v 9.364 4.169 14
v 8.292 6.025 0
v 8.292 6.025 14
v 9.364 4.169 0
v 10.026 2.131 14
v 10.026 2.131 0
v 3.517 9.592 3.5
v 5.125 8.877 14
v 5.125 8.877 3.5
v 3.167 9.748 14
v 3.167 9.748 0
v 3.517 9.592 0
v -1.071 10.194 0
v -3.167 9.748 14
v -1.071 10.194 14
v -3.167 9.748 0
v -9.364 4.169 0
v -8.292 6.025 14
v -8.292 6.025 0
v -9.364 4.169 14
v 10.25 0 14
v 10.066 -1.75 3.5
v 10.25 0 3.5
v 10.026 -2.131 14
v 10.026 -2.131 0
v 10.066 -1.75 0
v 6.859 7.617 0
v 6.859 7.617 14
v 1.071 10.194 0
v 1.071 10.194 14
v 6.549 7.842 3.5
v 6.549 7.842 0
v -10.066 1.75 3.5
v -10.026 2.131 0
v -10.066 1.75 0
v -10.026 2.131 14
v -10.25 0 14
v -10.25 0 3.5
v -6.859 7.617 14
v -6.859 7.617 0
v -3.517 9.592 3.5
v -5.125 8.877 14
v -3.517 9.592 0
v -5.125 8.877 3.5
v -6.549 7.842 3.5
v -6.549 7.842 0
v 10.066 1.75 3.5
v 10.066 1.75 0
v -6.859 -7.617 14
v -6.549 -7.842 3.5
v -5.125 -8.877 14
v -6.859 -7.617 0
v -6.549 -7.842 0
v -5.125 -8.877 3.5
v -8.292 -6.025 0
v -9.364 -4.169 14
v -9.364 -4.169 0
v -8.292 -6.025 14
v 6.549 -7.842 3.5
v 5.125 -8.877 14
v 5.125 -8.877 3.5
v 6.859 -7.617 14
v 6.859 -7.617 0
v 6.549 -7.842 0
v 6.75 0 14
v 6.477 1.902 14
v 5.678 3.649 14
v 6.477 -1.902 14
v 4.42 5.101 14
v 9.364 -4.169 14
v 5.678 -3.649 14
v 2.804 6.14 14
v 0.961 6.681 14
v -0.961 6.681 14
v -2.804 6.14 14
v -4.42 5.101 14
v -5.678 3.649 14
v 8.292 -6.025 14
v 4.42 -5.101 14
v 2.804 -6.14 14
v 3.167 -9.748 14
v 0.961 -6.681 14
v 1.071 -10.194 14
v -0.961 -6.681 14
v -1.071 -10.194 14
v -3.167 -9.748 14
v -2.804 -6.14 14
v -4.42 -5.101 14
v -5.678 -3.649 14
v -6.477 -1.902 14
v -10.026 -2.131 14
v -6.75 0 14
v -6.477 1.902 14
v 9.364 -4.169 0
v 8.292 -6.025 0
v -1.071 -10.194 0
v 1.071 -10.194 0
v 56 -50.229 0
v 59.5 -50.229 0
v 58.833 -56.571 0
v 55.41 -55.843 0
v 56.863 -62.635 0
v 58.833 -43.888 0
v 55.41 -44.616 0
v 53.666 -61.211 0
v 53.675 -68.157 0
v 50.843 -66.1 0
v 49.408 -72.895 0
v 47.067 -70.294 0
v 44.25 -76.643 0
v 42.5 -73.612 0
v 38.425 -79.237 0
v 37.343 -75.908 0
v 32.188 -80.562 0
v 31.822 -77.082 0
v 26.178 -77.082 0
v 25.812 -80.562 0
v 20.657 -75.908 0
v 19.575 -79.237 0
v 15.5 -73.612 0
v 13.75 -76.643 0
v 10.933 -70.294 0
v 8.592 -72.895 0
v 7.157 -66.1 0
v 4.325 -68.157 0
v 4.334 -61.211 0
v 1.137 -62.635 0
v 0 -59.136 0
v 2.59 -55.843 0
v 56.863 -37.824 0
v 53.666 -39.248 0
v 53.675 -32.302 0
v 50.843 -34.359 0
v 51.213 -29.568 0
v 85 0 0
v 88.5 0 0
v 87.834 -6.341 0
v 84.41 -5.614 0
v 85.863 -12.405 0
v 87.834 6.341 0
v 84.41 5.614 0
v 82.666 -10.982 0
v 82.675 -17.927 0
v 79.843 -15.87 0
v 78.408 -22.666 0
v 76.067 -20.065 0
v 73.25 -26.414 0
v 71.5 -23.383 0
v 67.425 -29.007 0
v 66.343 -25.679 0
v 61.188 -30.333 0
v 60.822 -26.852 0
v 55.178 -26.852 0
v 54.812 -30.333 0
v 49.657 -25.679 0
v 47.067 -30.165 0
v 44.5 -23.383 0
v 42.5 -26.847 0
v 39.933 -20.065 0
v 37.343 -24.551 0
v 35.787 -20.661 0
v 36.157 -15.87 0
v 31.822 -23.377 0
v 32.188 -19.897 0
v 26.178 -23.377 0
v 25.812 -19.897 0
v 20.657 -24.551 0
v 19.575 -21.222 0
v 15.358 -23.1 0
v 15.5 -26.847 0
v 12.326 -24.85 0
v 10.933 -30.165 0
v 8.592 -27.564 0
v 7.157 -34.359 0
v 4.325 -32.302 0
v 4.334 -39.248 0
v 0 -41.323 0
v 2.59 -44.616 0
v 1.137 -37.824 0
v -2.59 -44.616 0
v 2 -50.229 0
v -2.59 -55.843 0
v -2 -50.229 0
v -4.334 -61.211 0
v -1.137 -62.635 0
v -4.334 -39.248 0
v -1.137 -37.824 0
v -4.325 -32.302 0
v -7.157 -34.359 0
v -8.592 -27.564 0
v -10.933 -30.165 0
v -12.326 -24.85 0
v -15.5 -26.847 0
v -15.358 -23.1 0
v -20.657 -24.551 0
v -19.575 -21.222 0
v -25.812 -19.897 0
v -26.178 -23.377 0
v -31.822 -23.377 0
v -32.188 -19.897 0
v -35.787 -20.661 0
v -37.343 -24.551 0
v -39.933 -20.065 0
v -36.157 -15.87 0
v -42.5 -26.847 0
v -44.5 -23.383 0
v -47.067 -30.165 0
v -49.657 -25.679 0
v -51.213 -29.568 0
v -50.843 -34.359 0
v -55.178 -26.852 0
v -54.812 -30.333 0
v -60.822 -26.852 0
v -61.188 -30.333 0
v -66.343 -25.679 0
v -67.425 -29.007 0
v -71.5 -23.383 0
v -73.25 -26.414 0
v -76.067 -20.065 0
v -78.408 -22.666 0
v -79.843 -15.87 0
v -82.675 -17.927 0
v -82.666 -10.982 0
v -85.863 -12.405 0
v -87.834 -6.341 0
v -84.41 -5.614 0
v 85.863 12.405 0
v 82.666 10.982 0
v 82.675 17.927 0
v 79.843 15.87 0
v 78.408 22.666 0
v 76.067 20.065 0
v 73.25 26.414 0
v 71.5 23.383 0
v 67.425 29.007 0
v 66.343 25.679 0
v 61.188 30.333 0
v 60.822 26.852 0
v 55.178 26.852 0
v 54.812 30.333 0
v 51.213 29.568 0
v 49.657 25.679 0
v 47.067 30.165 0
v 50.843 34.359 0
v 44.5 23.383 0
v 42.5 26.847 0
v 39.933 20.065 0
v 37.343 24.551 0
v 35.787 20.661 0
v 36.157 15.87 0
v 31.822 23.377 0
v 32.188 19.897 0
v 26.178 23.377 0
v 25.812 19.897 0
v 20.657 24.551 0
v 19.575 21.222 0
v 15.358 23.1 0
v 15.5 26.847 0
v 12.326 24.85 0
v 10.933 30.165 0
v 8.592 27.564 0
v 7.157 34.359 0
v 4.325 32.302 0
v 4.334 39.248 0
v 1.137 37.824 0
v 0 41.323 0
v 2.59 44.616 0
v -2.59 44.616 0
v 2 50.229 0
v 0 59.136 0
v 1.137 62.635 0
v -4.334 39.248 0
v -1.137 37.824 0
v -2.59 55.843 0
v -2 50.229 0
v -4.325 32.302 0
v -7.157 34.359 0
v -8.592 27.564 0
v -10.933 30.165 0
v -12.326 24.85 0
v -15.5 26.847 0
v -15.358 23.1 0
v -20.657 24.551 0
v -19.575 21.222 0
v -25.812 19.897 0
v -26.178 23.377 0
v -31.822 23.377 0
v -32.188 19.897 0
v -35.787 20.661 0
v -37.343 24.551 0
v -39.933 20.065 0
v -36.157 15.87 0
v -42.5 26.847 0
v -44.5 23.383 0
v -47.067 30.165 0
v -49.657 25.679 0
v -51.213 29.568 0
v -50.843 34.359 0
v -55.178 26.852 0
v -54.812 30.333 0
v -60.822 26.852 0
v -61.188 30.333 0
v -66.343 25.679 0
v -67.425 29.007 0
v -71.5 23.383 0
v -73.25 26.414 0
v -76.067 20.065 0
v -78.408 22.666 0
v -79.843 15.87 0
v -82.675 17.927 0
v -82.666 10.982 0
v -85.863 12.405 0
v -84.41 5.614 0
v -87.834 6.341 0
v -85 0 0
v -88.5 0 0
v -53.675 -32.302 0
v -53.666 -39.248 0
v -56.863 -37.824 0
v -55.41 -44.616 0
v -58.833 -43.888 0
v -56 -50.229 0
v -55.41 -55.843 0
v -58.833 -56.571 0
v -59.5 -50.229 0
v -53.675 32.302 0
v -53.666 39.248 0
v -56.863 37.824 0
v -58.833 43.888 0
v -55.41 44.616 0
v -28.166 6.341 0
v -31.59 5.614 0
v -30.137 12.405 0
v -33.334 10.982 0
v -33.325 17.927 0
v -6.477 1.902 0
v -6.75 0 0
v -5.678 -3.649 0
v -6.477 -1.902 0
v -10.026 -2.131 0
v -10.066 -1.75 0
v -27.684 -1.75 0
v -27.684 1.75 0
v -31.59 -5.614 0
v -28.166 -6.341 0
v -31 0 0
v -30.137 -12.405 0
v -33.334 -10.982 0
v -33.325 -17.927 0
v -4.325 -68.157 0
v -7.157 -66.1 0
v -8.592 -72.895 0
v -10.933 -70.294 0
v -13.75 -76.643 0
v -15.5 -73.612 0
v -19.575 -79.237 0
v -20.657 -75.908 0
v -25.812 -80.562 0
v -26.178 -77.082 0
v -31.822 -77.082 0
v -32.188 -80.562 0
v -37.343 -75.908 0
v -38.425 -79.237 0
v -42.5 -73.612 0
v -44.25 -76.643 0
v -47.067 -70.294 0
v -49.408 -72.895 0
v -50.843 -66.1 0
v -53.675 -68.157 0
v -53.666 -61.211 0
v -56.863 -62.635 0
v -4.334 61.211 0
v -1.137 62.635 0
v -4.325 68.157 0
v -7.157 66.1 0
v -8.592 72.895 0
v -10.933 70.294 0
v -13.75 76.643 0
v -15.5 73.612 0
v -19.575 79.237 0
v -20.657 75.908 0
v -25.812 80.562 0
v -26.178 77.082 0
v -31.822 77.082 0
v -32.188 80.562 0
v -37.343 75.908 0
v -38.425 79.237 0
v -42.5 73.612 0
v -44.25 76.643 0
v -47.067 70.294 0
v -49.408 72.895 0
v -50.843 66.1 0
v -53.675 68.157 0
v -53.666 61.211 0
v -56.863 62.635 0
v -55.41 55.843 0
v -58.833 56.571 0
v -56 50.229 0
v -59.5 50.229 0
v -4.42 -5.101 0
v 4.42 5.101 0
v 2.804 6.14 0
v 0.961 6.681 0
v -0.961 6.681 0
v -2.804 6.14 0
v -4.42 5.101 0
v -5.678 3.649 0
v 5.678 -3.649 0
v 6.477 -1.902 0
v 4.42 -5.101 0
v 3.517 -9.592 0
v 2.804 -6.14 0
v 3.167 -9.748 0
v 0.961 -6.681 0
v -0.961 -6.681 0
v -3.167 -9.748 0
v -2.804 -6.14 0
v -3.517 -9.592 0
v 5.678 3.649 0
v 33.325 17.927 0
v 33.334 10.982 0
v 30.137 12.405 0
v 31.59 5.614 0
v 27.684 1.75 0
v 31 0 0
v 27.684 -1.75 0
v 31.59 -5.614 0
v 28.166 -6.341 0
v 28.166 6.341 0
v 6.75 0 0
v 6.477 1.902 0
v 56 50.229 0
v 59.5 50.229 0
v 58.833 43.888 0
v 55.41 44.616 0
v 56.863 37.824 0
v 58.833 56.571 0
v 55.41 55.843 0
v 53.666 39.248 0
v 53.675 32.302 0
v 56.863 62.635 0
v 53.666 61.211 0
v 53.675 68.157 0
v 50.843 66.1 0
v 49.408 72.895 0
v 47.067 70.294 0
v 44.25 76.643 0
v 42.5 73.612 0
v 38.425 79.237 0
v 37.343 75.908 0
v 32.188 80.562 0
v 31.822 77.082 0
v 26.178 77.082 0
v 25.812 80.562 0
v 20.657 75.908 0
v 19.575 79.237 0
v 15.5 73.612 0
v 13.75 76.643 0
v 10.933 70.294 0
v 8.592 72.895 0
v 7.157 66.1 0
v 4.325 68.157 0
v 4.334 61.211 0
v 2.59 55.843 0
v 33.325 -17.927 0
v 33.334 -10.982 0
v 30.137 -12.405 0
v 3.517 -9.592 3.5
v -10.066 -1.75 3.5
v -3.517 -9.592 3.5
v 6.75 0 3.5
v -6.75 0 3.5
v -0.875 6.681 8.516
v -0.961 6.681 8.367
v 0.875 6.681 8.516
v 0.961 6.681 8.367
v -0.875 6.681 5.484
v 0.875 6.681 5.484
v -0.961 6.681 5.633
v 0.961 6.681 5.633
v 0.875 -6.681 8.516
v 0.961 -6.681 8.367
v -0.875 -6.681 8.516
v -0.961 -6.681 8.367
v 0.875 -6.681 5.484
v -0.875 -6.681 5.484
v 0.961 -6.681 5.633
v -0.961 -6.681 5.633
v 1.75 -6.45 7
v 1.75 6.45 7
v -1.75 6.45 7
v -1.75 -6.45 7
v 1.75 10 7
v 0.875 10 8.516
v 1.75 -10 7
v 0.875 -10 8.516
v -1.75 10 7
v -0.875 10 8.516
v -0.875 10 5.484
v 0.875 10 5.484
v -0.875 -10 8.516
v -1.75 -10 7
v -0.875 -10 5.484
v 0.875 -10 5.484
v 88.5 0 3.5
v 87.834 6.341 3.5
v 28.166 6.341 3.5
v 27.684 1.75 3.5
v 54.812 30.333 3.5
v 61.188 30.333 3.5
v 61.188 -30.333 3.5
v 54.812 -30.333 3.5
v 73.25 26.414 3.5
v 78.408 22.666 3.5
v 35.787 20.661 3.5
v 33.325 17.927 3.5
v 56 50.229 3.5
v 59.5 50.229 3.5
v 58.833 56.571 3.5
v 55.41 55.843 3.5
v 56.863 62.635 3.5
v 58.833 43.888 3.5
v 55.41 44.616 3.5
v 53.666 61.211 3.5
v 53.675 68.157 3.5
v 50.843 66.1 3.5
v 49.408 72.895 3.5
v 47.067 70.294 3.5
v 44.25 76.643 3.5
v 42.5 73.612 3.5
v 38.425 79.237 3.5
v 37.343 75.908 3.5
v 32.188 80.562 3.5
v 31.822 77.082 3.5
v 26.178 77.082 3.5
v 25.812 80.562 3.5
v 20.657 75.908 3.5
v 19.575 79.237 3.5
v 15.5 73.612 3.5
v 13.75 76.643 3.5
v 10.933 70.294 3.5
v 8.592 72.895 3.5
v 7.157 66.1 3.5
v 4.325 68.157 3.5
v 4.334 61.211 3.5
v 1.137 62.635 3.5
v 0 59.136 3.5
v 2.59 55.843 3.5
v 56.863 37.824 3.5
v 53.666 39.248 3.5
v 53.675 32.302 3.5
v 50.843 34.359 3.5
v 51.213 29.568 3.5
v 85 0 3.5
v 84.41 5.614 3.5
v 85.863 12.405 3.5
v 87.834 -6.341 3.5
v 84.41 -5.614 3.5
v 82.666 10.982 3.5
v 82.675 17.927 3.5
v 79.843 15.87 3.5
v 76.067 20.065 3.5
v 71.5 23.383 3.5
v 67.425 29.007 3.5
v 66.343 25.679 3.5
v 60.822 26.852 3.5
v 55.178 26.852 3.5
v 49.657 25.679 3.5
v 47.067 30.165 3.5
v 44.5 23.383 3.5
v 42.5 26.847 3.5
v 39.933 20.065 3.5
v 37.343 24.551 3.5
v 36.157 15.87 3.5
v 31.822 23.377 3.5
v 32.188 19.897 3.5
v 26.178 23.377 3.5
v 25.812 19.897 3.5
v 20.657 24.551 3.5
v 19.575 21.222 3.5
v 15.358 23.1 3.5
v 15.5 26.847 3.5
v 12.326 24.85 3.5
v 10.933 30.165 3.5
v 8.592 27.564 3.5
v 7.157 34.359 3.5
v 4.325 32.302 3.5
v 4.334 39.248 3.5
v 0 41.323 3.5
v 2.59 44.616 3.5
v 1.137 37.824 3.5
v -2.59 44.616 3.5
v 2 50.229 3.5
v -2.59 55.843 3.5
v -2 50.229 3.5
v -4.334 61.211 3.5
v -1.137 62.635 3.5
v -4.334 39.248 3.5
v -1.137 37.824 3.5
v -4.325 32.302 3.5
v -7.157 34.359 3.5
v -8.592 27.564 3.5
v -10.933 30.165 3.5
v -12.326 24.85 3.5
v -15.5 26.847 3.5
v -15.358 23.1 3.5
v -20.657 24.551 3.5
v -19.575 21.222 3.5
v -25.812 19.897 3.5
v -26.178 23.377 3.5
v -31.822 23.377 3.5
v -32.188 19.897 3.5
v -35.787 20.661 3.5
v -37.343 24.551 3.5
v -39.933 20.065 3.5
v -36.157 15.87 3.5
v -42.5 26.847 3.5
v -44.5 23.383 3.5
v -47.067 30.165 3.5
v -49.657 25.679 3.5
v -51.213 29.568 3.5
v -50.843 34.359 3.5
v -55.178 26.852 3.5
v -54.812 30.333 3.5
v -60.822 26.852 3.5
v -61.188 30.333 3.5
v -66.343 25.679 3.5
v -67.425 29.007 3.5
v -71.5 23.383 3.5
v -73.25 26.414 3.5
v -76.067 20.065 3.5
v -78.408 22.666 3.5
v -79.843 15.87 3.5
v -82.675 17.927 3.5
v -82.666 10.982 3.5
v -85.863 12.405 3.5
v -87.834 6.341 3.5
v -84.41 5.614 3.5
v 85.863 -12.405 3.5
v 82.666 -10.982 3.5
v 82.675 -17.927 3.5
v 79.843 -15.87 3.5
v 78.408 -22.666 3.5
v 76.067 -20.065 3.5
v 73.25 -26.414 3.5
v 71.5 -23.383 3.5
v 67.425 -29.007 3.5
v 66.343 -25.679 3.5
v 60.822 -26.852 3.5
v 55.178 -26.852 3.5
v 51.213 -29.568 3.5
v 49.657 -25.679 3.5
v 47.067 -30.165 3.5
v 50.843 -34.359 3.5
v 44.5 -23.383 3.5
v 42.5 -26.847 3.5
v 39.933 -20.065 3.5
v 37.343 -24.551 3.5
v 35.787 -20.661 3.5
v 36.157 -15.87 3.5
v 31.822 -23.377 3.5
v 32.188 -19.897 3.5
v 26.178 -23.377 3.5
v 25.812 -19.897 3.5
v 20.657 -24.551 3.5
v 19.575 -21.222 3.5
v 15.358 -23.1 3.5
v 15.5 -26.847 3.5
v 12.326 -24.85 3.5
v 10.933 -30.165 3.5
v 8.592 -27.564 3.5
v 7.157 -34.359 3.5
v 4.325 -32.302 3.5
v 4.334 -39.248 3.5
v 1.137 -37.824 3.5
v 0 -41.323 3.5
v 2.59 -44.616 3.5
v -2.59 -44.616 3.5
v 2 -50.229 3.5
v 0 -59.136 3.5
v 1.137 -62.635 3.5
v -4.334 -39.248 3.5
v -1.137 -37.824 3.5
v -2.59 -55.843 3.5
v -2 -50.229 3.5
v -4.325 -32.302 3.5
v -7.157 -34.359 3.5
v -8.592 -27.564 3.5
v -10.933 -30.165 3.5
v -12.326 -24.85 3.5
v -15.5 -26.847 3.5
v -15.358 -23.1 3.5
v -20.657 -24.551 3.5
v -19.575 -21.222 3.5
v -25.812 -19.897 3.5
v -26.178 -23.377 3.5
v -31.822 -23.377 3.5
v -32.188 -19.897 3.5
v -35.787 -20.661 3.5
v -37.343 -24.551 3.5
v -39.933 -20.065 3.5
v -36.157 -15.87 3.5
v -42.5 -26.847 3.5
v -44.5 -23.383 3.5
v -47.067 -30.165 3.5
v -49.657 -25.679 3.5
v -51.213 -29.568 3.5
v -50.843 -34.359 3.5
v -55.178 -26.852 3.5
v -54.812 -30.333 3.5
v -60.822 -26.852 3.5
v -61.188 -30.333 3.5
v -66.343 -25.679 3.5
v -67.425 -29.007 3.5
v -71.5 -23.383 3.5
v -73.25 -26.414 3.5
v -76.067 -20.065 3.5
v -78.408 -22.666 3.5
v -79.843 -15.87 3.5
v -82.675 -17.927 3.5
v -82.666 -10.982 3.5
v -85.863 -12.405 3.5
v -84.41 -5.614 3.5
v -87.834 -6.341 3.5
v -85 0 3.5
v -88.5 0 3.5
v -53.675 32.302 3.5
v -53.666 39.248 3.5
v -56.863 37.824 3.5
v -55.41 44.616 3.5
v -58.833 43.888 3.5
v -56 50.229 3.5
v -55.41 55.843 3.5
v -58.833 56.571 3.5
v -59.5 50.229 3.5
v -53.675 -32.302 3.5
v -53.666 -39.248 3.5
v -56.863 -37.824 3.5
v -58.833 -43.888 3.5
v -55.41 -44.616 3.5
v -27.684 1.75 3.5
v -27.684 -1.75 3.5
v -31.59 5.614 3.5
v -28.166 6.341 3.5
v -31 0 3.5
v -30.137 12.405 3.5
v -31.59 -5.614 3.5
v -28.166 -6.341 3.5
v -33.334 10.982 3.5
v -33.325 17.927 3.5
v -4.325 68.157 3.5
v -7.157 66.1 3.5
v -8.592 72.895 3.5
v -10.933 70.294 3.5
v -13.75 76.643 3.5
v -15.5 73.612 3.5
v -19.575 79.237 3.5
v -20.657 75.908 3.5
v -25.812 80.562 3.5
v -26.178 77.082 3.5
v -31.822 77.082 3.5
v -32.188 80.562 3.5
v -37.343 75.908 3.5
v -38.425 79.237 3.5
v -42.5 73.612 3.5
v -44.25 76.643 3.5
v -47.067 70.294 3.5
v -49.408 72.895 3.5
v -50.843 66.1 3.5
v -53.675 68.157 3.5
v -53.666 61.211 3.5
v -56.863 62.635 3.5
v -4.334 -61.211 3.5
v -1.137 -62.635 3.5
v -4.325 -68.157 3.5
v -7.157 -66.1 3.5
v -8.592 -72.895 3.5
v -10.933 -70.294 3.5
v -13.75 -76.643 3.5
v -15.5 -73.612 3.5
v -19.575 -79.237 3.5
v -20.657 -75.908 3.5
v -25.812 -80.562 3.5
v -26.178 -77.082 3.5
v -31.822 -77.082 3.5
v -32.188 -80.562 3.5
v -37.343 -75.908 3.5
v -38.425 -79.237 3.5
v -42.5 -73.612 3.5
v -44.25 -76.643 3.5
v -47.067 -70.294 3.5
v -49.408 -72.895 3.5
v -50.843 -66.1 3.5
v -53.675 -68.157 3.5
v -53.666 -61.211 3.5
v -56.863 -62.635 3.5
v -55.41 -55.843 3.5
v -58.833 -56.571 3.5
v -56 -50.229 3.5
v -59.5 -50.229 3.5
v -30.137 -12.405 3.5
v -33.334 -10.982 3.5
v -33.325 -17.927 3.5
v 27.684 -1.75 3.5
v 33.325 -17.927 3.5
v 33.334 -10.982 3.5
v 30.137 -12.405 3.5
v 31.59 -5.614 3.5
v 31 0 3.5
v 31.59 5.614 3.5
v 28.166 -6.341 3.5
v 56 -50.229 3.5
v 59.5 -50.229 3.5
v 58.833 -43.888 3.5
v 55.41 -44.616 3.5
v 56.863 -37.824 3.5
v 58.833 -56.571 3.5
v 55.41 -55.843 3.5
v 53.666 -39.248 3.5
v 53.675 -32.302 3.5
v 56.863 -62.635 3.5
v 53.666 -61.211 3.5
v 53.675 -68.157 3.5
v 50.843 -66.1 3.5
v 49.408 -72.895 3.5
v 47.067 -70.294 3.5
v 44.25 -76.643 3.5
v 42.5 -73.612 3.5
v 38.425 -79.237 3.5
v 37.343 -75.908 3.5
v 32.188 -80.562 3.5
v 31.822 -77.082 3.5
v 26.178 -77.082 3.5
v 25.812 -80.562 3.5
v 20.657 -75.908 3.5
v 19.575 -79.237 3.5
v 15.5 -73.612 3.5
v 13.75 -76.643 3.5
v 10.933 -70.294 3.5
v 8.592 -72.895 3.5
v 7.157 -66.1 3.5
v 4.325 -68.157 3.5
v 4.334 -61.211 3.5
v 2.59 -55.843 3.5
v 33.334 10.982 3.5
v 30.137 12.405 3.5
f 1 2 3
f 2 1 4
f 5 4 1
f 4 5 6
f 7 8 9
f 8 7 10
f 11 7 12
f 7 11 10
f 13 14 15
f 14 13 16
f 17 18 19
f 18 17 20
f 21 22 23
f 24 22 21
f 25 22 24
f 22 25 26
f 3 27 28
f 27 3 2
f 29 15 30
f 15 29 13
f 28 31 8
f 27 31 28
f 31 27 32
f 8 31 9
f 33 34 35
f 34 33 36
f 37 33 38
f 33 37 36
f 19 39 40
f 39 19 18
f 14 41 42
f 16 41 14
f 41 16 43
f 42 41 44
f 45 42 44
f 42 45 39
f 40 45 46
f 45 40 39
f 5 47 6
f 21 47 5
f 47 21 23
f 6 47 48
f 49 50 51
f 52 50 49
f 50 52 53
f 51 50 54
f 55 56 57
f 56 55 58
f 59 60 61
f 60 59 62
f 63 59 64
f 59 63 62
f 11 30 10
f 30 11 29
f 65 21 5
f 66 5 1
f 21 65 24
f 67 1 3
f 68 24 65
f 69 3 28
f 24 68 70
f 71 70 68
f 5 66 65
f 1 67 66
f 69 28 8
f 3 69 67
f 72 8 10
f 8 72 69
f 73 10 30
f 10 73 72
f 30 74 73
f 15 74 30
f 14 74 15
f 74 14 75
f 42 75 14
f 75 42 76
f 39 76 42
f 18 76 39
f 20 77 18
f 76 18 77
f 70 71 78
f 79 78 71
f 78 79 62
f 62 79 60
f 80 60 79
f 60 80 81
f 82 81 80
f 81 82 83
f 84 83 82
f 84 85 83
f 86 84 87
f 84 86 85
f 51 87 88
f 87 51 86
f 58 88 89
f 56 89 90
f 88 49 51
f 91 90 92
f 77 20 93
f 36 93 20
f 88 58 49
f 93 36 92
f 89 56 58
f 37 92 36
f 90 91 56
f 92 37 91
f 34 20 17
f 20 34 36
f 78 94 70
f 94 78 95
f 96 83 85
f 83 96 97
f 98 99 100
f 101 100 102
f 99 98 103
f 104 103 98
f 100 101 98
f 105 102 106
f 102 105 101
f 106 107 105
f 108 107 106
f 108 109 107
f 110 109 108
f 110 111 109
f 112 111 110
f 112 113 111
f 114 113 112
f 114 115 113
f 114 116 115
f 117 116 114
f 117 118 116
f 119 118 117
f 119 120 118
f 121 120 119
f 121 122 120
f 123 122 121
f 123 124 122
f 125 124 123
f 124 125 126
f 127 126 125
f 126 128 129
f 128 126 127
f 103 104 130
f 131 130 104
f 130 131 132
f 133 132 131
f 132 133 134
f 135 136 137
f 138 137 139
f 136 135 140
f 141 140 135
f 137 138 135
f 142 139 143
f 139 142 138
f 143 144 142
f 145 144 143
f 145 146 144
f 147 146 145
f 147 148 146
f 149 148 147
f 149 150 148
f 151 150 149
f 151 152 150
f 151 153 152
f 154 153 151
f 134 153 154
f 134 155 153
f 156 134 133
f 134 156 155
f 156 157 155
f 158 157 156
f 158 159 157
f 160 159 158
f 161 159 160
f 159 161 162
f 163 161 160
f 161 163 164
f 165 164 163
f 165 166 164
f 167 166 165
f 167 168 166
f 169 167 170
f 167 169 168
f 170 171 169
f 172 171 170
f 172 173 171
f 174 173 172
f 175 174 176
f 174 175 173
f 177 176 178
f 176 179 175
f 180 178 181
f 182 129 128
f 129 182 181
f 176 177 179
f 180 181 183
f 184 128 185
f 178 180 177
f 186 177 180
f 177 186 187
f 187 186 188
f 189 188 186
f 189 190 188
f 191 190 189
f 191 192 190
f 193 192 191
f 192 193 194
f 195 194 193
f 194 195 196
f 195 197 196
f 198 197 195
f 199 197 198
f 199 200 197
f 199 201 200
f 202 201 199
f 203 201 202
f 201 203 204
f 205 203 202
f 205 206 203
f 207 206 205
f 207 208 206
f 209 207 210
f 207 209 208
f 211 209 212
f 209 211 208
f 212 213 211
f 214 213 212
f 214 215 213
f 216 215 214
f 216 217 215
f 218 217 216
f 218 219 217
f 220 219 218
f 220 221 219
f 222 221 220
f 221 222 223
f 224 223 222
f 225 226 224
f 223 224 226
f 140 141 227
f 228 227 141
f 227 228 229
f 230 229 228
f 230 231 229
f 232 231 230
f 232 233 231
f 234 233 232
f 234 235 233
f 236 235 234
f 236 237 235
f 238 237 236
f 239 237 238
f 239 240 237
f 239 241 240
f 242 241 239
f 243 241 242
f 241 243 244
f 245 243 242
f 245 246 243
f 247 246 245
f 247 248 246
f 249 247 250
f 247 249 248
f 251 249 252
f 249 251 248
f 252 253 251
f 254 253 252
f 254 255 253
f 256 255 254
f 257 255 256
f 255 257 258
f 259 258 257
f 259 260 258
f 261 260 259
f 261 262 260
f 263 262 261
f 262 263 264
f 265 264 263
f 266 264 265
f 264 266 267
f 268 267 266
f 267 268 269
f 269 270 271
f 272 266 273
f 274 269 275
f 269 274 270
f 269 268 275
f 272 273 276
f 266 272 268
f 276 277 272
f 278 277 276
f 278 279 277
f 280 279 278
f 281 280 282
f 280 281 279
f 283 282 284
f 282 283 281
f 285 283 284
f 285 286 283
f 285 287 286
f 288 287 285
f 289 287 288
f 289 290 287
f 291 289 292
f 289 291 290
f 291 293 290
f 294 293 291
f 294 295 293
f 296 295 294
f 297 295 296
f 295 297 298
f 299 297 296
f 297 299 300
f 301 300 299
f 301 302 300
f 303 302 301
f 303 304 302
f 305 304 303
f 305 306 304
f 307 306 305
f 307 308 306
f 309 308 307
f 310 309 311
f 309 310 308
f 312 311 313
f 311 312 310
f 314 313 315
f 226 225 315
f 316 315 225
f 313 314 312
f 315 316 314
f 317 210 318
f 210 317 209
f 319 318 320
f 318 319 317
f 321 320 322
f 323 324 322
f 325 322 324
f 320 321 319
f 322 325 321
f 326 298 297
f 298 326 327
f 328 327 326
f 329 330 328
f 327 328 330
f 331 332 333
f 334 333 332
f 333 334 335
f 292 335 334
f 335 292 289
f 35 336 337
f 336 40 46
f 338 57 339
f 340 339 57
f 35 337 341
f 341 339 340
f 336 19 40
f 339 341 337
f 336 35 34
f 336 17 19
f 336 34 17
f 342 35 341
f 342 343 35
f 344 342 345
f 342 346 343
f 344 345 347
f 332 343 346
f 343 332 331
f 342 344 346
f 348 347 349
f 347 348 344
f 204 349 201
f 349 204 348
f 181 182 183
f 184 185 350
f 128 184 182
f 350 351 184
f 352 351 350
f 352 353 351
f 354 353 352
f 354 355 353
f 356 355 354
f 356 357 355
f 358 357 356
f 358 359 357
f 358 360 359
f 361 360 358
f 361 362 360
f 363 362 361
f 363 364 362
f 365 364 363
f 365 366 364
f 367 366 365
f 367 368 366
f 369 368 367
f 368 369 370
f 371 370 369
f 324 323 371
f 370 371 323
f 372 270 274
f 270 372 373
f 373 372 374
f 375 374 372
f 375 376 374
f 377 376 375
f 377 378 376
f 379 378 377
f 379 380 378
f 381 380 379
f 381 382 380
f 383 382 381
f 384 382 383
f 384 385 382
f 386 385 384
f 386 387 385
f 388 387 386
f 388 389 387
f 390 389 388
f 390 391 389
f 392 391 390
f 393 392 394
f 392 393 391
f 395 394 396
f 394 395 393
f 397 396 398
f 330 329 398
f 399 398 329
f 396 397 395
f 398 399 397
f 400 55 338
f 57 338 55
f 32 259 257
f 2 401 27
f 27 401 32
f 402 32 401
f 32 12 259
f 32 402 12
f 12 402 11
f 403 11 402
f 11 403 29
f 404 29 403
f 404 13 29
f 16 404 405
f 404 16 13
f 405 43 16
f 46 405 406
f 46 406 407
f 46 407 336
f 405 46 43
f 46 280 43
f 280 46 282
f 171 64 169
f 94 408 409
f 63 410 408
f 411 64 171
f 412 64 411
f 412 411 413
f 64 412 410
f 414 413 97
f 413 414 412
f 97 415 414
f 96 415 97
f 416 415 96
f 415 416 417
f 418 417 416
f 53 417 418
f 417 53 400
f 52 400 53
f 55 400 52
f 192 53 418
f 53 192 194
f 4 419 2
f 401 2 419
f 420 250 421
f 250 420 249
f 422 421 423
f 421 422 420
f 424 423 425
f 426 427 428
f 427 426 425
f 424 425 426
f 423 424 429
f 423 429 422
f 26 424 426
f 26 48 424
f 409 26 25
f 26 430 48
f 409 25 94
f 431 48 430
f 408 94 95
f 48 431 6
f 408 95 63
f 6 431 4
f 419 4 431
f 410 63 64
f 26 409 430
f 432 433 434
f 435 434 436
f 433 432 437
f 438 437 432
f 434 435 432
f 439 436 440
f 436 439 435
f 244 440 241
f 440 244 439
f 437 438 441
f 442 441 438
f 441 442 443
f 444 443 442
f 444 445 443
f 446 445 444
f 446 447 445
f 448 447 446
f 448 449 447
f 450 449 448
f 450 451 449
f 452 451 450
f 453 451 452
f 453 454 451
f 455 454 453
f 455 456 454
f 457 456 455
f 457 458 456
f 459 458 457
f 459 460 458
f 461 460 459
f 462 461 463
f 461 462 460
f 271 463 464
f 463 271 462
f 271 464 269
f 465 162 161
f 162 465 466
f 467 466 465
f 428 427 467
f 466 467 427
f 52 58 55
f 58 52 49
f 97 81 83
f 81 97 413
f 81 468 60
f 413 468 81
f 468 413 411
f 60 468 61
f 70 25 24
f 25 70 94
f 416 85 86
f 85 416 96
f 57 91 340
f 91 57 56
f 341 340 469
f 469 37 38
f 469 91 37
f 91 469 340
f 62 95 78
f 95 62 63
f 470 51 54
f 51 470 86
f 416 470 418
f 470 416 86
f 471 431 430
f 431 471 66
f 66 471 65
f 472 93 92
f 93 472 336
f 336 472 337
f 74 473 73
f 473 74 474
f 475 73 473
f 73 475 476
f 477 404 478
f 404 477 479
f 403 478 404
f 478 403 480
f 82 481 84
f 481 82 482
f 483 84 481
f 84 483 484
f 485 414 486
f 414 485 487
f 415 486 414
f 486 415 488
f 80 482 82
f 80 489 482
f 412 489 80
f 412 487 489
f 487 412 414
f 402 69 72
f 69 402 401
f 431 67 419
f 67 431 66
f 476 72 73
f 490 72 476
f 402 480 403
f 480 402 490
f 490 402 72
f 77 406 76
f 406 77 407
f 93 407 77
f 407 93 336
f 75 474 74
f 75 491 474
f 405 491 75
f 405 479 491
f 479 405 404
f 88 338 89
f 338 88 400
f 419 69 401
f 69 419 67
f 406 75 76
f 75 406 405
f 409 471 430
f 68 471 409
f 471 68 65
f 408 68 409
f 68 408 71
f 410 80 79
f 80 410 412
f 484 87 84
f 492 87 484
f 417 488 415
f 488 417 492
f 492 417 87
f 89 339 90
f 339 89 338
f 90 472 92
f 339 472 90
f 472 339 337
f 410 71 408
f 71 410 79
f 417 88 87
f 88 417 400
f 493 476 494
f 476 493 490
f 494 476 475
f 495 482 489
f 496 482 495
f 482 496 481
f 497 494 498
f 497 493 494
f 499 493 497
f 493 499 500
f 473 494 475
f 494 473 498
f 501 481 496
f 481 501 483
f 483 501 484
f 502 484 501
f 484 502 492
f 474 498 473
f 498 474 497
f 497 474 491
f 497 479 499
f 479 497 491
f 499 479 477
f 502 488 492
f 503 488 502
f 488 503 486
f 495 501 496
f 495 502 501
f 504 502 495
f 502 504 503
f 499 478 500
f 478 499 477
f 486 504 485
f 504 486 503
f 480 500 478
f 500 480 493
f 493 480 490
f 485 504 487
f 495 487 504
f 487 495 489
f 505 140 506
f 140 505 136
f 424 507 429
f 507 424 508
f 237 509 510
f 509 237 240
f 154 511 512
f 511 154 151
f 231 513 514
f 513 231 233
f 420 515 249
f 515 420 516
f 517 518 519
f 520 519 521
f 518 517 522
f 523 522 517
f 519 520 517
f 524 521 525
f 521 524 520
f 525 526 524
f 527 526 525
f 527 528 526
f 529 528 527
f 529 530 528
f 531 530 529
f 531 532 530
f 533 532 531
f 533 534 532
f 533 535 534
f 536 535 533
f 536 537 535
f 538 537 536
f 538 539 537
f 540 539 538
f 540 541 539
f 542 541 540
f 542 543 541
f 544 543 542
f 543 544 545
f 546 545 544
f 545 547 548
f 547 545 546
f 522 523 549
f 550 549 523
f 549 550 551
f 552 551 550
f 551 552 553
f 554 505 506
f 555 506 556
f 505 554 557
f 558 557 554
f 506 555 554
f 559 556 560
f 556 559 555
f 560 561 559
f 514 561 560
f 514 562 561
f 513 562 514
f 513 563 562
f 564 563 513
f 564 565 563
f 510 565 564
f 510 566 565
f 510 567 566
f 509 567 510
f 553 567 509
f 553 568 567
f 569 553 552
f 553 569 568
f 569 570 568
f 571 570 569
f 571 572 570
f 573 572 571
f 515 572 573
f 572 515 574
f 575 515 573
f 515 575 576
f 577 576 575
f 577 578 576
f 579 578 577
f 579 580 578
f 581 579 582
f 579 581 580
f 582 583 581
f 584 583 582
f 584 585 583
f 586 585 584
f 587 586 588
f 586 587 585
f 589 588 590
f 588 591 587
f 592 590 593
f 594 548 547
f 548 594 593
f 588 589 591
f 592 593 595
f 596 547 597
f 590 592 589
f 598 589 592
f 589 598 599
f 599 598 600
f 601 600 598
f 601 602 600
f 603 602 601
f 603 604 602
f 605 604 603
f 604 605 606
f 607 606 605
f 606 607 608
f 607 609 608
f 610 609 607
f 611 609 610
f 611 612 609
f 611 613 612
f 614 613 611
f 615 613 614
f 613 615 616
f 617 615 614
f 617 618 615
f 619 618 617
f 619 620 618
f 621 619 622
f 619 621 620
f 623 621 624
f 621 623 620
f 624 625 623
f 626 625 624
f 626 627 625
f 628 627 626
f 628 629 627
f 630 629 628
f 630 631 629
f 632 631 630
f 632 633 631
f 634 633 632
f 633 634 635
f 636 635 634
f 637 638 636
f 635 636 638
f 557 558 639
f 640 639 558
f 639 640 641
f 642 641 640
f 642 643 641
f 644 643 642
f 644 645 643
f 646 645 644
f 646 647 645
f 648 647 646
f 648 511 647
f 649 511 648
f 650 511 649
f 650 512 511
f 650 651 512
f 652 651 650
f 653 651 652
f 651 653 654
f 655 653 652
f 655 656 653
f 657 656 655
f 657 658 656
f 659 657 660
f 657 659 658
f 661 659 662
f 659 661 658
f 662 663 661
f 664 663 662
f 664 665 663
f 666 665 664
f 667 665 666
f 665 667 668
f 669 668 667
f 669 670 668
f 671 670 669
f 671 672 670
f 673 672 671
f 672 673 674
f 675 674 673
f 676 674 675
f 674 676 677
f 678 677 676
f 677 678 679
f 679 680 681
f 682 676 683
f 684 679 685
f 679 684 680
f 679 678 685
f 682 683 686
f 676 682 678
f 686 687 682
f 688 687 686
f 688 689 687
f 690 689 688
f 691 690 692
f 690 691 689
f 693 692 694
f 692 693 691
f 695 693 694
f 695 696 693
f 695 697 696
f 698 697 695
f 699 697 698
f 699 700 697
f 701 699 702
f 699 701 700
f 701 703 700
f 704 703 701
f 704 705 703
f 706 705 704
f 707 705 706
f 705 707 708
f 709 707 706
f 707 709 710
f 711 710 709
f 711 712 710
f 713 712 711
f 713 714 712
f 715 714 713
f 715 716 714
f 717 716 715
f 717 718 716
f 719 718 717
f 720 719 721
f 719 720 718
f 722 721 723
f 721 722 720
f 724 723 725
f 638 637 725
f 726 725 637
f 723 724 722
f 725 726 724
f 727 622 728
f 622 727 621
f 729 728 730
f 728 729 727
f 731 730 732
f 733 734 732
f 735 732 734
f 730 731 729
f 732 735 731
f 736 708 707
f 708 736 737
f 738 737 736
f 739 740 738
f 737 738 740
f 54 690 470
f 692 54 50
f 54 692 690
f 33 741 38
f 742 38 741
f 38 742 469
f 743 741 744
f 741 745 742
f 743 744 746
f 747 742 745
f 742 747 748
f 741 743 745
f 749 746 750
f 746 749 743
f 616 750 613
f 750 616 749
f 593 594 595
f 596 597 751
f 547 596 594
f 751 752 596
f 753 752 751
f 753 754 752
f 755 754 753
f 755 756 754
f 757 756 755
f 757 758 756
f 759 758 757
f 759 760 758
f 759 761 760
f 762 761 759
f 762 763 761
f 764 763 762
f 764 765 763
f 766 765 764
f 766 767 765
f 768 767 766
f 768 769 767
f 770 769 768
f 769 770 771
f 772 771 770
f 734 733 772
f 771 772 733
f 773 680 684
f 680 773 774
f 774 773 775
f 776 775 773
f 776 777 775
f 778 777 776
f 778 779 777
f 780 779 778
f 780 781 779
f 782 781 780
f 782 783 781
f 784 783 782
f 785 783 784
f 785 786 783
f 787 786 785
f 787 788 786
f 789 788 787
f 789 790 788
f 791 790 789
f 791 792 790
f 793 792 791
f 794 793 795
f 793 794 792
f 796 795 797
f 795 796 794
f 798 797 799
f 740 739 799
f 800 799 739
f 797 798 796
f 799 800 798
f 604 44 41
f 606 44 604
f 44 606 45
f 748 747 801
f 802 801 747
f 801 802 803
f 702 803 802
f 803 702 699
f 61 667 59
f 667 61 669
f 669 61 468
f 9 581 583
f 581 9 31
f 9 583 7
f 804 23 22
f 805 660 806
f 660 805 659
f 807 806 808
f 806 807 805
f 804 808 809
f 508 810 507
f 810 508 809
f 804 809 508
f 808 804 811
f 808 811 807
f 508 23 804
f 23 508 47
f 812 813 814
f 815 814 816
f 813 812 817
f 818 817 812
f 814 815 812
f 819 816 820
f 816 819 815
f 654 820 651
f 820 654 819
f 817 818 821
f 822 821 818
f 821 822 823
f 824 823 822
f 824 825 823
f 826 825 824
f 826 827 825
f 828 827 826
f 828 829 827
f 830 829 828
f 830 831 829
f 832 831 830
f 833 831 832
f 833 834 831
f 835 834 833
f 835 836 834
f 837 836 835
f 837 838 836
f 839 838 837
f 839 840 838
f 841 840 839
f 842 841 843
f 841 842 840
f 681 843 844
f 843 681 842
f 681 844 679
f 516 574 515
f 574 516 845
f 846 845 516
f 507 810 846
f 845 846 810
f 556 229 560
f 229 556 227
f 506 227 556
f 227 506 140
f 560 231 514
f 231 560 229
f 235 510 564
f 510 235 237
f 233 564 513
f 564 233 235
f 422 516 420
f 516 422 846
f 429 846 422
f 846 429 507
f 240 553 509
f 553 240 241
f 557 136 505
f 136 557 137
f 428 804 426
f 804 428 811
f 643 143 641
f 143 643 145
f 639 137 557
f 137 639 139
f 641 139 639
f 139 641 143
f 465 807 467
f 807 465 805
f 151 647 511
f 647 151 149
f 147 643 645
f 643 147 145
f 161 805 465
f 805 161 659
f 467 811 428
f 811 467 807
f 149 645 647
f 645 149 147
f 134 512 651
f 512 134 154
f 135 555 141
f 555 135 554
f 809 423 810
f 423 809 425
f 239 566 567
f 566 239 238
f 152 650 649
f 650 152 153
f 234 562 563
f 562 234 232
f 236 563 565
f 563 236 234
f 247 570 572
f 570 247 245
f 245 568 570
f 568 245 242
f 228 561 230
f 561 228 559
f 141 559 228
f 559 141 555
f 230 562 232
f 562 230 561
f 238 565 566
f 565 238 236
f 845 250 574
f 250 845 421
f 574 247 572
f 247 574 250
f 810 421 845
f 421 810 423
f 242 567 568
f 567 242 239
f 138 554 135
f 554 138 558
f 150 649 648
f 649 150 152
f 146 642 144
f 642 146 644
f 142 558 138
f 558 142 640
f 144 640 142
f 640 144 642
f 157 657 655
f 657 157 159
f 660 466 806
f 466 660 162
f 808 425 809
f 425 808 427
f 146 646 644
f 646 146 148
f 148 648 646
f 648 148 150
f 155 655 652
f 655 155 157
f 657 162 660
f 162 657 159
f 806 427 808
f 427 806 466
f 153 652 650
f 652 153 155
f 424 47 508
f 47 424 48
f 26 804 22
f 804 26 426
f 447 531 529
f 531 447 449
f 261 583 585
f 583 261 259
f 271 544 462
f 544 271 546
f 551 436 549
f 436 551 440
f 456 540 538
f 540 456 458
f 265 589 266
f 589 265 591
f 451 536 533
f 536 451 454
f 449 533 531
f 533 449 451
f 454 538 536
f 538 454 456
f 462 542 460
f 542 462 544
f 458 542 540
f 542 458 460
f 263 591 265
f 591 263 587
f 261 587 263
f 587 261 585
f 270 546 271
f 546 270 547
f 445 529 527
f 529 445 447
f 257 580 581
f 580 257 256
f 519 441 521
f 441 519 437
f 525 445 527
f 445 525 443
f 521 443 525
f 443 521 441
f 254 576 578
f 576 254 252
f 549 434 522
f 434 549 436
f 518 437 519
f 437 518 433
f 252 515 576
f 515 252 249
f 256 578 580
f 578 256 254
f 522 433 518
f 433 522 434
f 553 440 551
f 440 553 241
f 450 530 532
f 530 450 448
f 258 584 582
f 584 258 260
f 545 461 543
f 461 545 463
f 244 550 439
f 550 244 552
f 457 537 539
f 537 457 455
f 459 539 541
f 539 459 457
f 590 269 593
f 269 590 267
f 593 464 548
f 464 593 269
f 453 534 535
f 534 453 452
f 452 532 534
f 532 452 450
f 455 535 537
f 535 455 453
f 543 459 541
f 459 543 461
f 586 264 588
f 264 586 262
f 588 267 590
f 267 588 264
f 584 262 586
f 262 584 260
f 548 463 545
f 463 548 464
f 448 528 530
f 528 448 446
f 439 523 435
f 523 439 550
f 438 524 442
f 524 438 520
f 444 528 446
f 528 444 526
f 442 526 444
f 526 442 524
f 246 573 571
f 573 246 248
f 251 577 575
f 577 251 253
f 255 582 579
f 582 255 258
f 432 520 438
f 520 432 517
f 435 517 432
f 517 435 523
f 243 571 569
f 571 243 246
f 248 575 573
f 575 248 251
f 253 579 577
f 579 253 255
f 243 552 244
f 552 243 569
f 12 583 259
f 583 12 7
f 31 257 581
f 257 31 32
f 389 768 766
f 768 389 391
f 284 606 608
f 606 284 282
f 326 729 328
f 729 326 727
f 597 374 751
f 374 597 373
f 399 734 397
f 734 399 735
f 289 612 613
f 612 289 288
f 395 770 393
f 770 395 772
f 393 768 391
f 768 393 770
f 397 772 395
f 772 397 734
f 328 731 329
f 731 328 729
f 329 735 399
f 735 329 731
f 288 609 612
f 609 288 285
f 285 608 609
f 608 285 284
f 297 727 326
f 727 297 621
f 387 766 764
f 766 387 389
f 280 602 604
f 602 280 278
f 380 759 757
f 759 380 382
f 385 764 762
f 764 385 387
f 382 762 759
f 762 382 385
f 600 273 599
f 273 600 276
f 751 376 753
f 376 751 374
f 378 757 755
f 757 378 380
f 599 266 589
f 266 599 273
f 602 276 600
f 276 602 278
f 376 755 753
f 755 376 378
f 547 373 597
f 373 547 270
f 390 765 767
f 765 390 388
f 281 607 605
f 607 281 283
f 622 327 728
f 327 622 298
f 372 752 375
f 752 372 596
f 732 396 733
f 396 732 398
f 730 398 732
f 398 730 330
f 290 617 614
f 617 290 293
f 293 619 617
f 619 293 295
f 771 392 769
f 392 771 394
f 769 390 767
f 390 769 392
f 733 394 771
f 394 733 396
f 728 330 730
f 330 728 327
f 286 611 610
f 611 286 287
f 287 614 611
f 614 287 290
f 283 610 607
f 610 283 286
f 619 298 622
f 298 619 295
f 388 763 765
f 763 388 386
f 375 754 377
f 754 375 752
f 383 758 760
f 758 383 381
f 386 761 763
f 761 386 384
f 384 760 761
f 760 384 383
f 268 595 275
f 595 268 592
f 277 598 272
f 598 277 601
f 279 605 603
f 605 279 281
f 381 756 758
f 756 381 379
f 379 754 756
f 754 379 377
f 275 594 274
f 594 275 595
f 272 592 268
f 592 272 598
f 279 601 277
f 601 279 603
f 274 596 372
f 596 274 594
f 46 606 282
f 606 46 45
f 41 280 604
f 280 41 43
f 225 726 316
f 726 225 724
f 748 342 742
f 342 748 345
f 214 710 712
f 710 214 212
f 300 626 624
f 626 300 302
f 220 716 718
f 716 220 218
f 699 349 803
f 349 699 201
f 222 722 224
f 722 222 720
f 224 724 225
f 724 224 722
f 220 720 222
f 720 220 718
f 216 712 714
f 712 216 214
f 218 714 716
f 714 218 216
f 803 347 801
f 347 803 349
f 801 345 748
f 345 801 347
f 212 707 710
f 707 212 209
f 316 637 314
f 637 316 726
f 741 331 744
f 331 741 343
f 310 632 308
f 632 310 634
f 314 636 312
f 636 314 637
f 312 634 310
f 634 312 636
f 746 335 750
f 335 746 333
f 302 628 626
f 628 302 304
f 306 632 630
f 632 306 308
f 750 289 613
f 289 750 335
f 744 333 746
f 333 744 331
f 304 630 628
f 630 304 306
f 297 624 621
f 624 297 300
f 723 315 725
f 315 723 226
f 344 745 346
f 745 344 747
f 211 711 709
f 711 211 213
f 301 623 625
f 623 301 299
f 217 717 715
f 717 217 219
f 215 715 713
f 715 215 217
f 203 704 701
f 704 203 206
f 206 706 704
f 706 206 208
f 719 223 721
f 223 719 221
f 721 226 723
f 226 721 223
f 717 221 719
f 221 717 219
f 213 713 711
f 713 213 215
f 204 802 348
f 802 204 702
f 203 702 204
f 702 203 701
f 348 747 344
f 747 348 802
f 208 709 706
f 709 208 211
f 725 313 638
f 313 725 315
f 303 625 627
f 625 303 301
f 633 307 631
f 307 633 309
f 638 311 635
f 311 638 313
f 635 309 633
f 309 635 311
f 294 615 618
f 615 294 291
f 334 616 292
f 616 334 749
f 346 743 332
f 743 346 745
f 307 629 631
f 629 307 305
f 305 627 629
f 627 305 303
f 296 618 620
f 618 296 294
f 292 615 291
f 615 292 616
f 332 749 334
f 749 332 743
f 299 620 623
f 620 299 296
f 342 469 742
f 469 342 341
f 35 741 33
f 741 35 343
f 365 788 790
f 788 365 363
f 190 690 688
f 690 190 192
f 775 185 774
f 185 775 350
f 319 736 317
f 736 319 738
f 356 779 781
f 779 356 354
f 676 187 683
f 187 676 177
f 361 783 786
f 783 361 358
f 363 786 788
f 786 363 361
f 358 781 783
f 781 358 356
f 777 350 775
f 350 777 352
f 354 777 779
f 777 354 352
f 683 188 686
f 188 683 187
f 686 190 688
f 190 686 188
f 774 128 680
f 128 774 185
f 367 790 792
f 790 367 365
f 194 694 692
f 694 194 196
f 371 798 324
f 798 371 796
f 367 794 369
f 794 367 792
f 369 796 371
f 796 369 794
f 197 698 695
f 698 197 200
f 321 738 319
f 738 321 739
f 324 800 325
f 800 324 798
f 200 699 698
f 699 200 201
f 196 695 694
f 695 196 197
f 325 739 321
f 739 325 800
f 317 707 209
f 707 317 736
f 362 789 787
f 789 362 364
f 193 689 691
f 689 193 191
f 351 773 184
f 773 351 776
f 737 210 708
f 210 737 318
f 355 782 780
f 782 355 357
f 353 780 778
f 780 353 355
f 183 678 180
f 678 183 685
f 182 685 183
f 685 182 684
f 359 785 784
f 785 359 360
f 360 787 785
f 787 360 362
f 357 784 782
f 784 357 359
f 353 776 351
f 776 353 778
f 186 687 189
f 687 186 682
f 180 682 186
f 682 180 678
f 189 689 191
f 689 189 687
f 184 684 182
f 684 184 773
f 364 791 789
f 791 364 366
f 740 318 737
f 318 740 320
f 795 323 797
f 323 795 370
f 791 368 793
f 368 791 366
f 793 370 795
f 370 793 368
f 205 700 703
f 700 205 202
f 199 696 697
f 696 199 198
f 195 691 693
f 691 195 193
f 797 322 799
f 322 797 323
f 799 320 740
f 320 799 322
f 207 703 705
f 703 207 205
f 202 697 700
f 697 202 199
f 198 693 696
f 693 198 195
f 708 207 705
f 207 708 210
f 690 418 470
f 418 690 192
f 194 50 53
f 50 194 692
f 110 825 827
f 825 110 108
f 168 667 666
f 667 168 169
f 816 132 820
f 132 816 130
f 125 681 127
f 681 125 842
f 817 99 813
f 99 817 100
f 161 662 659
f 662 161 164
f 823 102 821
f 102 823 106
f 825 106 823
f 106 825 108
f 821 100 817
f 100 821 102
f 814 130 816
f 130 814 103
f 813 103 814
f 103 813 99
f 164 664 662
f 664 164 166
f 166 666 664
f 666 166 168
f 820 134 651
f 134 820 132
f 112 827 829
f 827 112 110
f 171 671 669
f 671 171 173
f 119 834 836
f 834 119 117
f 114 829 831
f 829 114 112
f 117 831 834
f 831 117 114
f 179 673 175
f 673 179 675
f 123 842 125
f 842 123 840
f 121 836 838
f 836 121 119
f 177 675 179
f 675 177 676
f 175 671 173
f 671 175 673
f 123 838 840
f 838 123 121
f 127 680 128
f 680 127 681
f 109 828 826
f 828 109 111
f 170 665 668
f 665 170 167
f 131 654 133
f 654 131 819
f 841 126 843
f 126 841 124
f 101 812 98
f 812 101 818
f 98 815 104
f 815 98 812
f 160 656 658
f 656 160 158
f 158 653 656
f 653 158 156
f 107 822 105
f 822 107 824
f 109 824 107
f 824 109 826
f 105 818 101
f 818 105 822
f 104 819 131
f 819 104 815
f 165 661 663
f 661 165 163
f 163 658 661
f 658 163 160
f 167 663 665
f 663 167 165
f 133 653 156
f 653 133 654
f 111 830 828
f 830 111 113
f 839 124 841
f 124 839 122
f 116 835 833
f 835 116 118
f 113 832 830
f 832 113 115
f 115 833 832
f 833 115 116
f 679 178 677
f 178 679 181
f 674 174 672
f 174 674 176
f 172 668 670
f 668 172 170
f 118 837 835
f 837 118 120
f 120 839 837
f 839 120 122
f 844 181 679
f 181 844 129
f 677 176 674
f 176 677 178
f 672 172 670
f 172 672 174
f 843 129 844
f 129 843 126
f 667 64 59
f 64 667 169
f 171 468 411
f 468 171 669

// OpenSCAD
union() {
	difference() {
		cylinder(d = 20.5000000000, h = 14.0000000000);
		translate(v = [0, 0, -14.0000000000]) {
			cylinder(d = 13.5000000000, h = 28.0000000000);
		}
		translate(v = [0, 10, 0]) {
			translate(v = [0, 0, 7.0000000000]) {
				rotate(a = [90, 0, 0]) {
					cylinder(d = 3.5000000000, h = 20);
				}
			}
		}
	}
	translate(v = [58, 0, 0]) {
		difference() {
			cylinder(d = 61.0000000000, h = 3.5000000000);
			translate(v = [0, 0, -3.5000000000]) {
				cylinder(d = 54, h = 7.0000000000);
			}
		}
	}
	translate(v = [0, 0, 1.7500000000]) {
		translate(v = [18.8750000000, 0, 0]) {
			cube(center = true, size = [24.2500000000, 3.5000000000, 3.5000000000]);
		}
	}
	rotate(a = [0, 0, 0.0000000000]) {
		union() {
			translate(v = [58, 0, 0]) {
				difference() {
					cylinder(d = 61.0000000000, h = 3.5000000000);
					translate(v = [0, 0, -3.5000000000]) {
						cylinder(d = 54, h = 7.0000000000);
					}
				}
			}
			translate(v = [0, 0, 1.7500000000]) {
				translate(v = [18.8750000000, 0, 0]) {
					cube(center = true, size = [24.2500000000, 3.5000000000, 3.5000000000]);
				}
			}
		}
	}
	rotate(a = [0, 0, 60.0000000000]) {
		union() {
			translate(v = [58, 0, 0]) {
				difference() {
					cylinder(d = 61.0000000000, h = 3.5000000000);
					translate(v = [0, 0, -3.5000000000]) {
						cylinder(d = 54, h = 7.0000000000);
					}
				}
			}
			translate(v = [0, 0, 1.7500000000]) {
				translate(v = [18.8750000000, 0, 0]) {
					cube(center = true, size = [24.2500000000, 3.5000000000, 3.5000000000]);
				}
			}
		}
	}
	rotate(a = [0, 0, 120.0000000000]) {
		union() {
			translate(v = [58, 0, 0]) {
				difference() {
					cylinder(d = 61.0000000000, h = 3.5000000000);
					translate(v = [0, 0, -3.5000000000]) {
						cylinder(d = 54, h = 7.0000000000);
					}
				}
			}
			translate(v = [0, 0, 1.7500000000]) {
				translate(v = [18.8750000000, 0, 0]) {
					cube(center = true, size = [24.2500000000, 3.5000000000, 3.5000000000]);
				}
			}
		}
	}
	rotate(a = [0, 0, 180.0000000000]) {
		union() {
			translate(v = [58, 0, 0]) {
				difference() {
					cylinder(d = 61.0000000000, h = 3.5000000000);
					translate(v = [0, 0, -3.5000000000]) {
						cylinder(d = 54, h = 7.0000000000);
					}
				}
			}
			translate(v = [0, 0, 1.7500000000]) {
				translate(v = [18.8750000000, 0, 0]) {
					cube(center = true, size = [24.2500000000, 3.5000000000, 3.5000000000]);
				}
			}
		}
	}
	rotate(a = [0, 0, 240.0000000000]) {
		union() {
			translate(v = [58, 0, 0]) {
				difference() {
					cylinder(d = 61.0000000000, h = 3.5000000000);
					translate(v = [0, 0, -3.5000000000]) {
						cylinder(d = 54, h = 7.0000000000);
					}
				}
			}
			translate(v = [0, 0, 1.7500000000]) {
				translate(v = [18.8750000000, 0, 0]) {
					cube(center = true, size = [24.2500000000, 3.5000000000, 3.5000000000]);
				}
			}
		}
	}
	rotate(a = [0, 0, 300.0000000000]) {
		union() {
			translate(v = [58, 0, 0]) {
				difference() {
					cylinder(d = 61.0000000000, h = 3.5000000000);
					translate(v = [0, 0, -3.5000000000]) {
						cylinder(d = 54, h = 7.0000000000);
					}
				}
			}
			translate(v = [0, 0, 1.7500000000]) {
				translate(v = [18.8750000000, 0, 0]) {
					cube(center = true, size = [24.2500000000, 3.5000000000, 3.5000000000]);
				}
			}
		}
	}
}
